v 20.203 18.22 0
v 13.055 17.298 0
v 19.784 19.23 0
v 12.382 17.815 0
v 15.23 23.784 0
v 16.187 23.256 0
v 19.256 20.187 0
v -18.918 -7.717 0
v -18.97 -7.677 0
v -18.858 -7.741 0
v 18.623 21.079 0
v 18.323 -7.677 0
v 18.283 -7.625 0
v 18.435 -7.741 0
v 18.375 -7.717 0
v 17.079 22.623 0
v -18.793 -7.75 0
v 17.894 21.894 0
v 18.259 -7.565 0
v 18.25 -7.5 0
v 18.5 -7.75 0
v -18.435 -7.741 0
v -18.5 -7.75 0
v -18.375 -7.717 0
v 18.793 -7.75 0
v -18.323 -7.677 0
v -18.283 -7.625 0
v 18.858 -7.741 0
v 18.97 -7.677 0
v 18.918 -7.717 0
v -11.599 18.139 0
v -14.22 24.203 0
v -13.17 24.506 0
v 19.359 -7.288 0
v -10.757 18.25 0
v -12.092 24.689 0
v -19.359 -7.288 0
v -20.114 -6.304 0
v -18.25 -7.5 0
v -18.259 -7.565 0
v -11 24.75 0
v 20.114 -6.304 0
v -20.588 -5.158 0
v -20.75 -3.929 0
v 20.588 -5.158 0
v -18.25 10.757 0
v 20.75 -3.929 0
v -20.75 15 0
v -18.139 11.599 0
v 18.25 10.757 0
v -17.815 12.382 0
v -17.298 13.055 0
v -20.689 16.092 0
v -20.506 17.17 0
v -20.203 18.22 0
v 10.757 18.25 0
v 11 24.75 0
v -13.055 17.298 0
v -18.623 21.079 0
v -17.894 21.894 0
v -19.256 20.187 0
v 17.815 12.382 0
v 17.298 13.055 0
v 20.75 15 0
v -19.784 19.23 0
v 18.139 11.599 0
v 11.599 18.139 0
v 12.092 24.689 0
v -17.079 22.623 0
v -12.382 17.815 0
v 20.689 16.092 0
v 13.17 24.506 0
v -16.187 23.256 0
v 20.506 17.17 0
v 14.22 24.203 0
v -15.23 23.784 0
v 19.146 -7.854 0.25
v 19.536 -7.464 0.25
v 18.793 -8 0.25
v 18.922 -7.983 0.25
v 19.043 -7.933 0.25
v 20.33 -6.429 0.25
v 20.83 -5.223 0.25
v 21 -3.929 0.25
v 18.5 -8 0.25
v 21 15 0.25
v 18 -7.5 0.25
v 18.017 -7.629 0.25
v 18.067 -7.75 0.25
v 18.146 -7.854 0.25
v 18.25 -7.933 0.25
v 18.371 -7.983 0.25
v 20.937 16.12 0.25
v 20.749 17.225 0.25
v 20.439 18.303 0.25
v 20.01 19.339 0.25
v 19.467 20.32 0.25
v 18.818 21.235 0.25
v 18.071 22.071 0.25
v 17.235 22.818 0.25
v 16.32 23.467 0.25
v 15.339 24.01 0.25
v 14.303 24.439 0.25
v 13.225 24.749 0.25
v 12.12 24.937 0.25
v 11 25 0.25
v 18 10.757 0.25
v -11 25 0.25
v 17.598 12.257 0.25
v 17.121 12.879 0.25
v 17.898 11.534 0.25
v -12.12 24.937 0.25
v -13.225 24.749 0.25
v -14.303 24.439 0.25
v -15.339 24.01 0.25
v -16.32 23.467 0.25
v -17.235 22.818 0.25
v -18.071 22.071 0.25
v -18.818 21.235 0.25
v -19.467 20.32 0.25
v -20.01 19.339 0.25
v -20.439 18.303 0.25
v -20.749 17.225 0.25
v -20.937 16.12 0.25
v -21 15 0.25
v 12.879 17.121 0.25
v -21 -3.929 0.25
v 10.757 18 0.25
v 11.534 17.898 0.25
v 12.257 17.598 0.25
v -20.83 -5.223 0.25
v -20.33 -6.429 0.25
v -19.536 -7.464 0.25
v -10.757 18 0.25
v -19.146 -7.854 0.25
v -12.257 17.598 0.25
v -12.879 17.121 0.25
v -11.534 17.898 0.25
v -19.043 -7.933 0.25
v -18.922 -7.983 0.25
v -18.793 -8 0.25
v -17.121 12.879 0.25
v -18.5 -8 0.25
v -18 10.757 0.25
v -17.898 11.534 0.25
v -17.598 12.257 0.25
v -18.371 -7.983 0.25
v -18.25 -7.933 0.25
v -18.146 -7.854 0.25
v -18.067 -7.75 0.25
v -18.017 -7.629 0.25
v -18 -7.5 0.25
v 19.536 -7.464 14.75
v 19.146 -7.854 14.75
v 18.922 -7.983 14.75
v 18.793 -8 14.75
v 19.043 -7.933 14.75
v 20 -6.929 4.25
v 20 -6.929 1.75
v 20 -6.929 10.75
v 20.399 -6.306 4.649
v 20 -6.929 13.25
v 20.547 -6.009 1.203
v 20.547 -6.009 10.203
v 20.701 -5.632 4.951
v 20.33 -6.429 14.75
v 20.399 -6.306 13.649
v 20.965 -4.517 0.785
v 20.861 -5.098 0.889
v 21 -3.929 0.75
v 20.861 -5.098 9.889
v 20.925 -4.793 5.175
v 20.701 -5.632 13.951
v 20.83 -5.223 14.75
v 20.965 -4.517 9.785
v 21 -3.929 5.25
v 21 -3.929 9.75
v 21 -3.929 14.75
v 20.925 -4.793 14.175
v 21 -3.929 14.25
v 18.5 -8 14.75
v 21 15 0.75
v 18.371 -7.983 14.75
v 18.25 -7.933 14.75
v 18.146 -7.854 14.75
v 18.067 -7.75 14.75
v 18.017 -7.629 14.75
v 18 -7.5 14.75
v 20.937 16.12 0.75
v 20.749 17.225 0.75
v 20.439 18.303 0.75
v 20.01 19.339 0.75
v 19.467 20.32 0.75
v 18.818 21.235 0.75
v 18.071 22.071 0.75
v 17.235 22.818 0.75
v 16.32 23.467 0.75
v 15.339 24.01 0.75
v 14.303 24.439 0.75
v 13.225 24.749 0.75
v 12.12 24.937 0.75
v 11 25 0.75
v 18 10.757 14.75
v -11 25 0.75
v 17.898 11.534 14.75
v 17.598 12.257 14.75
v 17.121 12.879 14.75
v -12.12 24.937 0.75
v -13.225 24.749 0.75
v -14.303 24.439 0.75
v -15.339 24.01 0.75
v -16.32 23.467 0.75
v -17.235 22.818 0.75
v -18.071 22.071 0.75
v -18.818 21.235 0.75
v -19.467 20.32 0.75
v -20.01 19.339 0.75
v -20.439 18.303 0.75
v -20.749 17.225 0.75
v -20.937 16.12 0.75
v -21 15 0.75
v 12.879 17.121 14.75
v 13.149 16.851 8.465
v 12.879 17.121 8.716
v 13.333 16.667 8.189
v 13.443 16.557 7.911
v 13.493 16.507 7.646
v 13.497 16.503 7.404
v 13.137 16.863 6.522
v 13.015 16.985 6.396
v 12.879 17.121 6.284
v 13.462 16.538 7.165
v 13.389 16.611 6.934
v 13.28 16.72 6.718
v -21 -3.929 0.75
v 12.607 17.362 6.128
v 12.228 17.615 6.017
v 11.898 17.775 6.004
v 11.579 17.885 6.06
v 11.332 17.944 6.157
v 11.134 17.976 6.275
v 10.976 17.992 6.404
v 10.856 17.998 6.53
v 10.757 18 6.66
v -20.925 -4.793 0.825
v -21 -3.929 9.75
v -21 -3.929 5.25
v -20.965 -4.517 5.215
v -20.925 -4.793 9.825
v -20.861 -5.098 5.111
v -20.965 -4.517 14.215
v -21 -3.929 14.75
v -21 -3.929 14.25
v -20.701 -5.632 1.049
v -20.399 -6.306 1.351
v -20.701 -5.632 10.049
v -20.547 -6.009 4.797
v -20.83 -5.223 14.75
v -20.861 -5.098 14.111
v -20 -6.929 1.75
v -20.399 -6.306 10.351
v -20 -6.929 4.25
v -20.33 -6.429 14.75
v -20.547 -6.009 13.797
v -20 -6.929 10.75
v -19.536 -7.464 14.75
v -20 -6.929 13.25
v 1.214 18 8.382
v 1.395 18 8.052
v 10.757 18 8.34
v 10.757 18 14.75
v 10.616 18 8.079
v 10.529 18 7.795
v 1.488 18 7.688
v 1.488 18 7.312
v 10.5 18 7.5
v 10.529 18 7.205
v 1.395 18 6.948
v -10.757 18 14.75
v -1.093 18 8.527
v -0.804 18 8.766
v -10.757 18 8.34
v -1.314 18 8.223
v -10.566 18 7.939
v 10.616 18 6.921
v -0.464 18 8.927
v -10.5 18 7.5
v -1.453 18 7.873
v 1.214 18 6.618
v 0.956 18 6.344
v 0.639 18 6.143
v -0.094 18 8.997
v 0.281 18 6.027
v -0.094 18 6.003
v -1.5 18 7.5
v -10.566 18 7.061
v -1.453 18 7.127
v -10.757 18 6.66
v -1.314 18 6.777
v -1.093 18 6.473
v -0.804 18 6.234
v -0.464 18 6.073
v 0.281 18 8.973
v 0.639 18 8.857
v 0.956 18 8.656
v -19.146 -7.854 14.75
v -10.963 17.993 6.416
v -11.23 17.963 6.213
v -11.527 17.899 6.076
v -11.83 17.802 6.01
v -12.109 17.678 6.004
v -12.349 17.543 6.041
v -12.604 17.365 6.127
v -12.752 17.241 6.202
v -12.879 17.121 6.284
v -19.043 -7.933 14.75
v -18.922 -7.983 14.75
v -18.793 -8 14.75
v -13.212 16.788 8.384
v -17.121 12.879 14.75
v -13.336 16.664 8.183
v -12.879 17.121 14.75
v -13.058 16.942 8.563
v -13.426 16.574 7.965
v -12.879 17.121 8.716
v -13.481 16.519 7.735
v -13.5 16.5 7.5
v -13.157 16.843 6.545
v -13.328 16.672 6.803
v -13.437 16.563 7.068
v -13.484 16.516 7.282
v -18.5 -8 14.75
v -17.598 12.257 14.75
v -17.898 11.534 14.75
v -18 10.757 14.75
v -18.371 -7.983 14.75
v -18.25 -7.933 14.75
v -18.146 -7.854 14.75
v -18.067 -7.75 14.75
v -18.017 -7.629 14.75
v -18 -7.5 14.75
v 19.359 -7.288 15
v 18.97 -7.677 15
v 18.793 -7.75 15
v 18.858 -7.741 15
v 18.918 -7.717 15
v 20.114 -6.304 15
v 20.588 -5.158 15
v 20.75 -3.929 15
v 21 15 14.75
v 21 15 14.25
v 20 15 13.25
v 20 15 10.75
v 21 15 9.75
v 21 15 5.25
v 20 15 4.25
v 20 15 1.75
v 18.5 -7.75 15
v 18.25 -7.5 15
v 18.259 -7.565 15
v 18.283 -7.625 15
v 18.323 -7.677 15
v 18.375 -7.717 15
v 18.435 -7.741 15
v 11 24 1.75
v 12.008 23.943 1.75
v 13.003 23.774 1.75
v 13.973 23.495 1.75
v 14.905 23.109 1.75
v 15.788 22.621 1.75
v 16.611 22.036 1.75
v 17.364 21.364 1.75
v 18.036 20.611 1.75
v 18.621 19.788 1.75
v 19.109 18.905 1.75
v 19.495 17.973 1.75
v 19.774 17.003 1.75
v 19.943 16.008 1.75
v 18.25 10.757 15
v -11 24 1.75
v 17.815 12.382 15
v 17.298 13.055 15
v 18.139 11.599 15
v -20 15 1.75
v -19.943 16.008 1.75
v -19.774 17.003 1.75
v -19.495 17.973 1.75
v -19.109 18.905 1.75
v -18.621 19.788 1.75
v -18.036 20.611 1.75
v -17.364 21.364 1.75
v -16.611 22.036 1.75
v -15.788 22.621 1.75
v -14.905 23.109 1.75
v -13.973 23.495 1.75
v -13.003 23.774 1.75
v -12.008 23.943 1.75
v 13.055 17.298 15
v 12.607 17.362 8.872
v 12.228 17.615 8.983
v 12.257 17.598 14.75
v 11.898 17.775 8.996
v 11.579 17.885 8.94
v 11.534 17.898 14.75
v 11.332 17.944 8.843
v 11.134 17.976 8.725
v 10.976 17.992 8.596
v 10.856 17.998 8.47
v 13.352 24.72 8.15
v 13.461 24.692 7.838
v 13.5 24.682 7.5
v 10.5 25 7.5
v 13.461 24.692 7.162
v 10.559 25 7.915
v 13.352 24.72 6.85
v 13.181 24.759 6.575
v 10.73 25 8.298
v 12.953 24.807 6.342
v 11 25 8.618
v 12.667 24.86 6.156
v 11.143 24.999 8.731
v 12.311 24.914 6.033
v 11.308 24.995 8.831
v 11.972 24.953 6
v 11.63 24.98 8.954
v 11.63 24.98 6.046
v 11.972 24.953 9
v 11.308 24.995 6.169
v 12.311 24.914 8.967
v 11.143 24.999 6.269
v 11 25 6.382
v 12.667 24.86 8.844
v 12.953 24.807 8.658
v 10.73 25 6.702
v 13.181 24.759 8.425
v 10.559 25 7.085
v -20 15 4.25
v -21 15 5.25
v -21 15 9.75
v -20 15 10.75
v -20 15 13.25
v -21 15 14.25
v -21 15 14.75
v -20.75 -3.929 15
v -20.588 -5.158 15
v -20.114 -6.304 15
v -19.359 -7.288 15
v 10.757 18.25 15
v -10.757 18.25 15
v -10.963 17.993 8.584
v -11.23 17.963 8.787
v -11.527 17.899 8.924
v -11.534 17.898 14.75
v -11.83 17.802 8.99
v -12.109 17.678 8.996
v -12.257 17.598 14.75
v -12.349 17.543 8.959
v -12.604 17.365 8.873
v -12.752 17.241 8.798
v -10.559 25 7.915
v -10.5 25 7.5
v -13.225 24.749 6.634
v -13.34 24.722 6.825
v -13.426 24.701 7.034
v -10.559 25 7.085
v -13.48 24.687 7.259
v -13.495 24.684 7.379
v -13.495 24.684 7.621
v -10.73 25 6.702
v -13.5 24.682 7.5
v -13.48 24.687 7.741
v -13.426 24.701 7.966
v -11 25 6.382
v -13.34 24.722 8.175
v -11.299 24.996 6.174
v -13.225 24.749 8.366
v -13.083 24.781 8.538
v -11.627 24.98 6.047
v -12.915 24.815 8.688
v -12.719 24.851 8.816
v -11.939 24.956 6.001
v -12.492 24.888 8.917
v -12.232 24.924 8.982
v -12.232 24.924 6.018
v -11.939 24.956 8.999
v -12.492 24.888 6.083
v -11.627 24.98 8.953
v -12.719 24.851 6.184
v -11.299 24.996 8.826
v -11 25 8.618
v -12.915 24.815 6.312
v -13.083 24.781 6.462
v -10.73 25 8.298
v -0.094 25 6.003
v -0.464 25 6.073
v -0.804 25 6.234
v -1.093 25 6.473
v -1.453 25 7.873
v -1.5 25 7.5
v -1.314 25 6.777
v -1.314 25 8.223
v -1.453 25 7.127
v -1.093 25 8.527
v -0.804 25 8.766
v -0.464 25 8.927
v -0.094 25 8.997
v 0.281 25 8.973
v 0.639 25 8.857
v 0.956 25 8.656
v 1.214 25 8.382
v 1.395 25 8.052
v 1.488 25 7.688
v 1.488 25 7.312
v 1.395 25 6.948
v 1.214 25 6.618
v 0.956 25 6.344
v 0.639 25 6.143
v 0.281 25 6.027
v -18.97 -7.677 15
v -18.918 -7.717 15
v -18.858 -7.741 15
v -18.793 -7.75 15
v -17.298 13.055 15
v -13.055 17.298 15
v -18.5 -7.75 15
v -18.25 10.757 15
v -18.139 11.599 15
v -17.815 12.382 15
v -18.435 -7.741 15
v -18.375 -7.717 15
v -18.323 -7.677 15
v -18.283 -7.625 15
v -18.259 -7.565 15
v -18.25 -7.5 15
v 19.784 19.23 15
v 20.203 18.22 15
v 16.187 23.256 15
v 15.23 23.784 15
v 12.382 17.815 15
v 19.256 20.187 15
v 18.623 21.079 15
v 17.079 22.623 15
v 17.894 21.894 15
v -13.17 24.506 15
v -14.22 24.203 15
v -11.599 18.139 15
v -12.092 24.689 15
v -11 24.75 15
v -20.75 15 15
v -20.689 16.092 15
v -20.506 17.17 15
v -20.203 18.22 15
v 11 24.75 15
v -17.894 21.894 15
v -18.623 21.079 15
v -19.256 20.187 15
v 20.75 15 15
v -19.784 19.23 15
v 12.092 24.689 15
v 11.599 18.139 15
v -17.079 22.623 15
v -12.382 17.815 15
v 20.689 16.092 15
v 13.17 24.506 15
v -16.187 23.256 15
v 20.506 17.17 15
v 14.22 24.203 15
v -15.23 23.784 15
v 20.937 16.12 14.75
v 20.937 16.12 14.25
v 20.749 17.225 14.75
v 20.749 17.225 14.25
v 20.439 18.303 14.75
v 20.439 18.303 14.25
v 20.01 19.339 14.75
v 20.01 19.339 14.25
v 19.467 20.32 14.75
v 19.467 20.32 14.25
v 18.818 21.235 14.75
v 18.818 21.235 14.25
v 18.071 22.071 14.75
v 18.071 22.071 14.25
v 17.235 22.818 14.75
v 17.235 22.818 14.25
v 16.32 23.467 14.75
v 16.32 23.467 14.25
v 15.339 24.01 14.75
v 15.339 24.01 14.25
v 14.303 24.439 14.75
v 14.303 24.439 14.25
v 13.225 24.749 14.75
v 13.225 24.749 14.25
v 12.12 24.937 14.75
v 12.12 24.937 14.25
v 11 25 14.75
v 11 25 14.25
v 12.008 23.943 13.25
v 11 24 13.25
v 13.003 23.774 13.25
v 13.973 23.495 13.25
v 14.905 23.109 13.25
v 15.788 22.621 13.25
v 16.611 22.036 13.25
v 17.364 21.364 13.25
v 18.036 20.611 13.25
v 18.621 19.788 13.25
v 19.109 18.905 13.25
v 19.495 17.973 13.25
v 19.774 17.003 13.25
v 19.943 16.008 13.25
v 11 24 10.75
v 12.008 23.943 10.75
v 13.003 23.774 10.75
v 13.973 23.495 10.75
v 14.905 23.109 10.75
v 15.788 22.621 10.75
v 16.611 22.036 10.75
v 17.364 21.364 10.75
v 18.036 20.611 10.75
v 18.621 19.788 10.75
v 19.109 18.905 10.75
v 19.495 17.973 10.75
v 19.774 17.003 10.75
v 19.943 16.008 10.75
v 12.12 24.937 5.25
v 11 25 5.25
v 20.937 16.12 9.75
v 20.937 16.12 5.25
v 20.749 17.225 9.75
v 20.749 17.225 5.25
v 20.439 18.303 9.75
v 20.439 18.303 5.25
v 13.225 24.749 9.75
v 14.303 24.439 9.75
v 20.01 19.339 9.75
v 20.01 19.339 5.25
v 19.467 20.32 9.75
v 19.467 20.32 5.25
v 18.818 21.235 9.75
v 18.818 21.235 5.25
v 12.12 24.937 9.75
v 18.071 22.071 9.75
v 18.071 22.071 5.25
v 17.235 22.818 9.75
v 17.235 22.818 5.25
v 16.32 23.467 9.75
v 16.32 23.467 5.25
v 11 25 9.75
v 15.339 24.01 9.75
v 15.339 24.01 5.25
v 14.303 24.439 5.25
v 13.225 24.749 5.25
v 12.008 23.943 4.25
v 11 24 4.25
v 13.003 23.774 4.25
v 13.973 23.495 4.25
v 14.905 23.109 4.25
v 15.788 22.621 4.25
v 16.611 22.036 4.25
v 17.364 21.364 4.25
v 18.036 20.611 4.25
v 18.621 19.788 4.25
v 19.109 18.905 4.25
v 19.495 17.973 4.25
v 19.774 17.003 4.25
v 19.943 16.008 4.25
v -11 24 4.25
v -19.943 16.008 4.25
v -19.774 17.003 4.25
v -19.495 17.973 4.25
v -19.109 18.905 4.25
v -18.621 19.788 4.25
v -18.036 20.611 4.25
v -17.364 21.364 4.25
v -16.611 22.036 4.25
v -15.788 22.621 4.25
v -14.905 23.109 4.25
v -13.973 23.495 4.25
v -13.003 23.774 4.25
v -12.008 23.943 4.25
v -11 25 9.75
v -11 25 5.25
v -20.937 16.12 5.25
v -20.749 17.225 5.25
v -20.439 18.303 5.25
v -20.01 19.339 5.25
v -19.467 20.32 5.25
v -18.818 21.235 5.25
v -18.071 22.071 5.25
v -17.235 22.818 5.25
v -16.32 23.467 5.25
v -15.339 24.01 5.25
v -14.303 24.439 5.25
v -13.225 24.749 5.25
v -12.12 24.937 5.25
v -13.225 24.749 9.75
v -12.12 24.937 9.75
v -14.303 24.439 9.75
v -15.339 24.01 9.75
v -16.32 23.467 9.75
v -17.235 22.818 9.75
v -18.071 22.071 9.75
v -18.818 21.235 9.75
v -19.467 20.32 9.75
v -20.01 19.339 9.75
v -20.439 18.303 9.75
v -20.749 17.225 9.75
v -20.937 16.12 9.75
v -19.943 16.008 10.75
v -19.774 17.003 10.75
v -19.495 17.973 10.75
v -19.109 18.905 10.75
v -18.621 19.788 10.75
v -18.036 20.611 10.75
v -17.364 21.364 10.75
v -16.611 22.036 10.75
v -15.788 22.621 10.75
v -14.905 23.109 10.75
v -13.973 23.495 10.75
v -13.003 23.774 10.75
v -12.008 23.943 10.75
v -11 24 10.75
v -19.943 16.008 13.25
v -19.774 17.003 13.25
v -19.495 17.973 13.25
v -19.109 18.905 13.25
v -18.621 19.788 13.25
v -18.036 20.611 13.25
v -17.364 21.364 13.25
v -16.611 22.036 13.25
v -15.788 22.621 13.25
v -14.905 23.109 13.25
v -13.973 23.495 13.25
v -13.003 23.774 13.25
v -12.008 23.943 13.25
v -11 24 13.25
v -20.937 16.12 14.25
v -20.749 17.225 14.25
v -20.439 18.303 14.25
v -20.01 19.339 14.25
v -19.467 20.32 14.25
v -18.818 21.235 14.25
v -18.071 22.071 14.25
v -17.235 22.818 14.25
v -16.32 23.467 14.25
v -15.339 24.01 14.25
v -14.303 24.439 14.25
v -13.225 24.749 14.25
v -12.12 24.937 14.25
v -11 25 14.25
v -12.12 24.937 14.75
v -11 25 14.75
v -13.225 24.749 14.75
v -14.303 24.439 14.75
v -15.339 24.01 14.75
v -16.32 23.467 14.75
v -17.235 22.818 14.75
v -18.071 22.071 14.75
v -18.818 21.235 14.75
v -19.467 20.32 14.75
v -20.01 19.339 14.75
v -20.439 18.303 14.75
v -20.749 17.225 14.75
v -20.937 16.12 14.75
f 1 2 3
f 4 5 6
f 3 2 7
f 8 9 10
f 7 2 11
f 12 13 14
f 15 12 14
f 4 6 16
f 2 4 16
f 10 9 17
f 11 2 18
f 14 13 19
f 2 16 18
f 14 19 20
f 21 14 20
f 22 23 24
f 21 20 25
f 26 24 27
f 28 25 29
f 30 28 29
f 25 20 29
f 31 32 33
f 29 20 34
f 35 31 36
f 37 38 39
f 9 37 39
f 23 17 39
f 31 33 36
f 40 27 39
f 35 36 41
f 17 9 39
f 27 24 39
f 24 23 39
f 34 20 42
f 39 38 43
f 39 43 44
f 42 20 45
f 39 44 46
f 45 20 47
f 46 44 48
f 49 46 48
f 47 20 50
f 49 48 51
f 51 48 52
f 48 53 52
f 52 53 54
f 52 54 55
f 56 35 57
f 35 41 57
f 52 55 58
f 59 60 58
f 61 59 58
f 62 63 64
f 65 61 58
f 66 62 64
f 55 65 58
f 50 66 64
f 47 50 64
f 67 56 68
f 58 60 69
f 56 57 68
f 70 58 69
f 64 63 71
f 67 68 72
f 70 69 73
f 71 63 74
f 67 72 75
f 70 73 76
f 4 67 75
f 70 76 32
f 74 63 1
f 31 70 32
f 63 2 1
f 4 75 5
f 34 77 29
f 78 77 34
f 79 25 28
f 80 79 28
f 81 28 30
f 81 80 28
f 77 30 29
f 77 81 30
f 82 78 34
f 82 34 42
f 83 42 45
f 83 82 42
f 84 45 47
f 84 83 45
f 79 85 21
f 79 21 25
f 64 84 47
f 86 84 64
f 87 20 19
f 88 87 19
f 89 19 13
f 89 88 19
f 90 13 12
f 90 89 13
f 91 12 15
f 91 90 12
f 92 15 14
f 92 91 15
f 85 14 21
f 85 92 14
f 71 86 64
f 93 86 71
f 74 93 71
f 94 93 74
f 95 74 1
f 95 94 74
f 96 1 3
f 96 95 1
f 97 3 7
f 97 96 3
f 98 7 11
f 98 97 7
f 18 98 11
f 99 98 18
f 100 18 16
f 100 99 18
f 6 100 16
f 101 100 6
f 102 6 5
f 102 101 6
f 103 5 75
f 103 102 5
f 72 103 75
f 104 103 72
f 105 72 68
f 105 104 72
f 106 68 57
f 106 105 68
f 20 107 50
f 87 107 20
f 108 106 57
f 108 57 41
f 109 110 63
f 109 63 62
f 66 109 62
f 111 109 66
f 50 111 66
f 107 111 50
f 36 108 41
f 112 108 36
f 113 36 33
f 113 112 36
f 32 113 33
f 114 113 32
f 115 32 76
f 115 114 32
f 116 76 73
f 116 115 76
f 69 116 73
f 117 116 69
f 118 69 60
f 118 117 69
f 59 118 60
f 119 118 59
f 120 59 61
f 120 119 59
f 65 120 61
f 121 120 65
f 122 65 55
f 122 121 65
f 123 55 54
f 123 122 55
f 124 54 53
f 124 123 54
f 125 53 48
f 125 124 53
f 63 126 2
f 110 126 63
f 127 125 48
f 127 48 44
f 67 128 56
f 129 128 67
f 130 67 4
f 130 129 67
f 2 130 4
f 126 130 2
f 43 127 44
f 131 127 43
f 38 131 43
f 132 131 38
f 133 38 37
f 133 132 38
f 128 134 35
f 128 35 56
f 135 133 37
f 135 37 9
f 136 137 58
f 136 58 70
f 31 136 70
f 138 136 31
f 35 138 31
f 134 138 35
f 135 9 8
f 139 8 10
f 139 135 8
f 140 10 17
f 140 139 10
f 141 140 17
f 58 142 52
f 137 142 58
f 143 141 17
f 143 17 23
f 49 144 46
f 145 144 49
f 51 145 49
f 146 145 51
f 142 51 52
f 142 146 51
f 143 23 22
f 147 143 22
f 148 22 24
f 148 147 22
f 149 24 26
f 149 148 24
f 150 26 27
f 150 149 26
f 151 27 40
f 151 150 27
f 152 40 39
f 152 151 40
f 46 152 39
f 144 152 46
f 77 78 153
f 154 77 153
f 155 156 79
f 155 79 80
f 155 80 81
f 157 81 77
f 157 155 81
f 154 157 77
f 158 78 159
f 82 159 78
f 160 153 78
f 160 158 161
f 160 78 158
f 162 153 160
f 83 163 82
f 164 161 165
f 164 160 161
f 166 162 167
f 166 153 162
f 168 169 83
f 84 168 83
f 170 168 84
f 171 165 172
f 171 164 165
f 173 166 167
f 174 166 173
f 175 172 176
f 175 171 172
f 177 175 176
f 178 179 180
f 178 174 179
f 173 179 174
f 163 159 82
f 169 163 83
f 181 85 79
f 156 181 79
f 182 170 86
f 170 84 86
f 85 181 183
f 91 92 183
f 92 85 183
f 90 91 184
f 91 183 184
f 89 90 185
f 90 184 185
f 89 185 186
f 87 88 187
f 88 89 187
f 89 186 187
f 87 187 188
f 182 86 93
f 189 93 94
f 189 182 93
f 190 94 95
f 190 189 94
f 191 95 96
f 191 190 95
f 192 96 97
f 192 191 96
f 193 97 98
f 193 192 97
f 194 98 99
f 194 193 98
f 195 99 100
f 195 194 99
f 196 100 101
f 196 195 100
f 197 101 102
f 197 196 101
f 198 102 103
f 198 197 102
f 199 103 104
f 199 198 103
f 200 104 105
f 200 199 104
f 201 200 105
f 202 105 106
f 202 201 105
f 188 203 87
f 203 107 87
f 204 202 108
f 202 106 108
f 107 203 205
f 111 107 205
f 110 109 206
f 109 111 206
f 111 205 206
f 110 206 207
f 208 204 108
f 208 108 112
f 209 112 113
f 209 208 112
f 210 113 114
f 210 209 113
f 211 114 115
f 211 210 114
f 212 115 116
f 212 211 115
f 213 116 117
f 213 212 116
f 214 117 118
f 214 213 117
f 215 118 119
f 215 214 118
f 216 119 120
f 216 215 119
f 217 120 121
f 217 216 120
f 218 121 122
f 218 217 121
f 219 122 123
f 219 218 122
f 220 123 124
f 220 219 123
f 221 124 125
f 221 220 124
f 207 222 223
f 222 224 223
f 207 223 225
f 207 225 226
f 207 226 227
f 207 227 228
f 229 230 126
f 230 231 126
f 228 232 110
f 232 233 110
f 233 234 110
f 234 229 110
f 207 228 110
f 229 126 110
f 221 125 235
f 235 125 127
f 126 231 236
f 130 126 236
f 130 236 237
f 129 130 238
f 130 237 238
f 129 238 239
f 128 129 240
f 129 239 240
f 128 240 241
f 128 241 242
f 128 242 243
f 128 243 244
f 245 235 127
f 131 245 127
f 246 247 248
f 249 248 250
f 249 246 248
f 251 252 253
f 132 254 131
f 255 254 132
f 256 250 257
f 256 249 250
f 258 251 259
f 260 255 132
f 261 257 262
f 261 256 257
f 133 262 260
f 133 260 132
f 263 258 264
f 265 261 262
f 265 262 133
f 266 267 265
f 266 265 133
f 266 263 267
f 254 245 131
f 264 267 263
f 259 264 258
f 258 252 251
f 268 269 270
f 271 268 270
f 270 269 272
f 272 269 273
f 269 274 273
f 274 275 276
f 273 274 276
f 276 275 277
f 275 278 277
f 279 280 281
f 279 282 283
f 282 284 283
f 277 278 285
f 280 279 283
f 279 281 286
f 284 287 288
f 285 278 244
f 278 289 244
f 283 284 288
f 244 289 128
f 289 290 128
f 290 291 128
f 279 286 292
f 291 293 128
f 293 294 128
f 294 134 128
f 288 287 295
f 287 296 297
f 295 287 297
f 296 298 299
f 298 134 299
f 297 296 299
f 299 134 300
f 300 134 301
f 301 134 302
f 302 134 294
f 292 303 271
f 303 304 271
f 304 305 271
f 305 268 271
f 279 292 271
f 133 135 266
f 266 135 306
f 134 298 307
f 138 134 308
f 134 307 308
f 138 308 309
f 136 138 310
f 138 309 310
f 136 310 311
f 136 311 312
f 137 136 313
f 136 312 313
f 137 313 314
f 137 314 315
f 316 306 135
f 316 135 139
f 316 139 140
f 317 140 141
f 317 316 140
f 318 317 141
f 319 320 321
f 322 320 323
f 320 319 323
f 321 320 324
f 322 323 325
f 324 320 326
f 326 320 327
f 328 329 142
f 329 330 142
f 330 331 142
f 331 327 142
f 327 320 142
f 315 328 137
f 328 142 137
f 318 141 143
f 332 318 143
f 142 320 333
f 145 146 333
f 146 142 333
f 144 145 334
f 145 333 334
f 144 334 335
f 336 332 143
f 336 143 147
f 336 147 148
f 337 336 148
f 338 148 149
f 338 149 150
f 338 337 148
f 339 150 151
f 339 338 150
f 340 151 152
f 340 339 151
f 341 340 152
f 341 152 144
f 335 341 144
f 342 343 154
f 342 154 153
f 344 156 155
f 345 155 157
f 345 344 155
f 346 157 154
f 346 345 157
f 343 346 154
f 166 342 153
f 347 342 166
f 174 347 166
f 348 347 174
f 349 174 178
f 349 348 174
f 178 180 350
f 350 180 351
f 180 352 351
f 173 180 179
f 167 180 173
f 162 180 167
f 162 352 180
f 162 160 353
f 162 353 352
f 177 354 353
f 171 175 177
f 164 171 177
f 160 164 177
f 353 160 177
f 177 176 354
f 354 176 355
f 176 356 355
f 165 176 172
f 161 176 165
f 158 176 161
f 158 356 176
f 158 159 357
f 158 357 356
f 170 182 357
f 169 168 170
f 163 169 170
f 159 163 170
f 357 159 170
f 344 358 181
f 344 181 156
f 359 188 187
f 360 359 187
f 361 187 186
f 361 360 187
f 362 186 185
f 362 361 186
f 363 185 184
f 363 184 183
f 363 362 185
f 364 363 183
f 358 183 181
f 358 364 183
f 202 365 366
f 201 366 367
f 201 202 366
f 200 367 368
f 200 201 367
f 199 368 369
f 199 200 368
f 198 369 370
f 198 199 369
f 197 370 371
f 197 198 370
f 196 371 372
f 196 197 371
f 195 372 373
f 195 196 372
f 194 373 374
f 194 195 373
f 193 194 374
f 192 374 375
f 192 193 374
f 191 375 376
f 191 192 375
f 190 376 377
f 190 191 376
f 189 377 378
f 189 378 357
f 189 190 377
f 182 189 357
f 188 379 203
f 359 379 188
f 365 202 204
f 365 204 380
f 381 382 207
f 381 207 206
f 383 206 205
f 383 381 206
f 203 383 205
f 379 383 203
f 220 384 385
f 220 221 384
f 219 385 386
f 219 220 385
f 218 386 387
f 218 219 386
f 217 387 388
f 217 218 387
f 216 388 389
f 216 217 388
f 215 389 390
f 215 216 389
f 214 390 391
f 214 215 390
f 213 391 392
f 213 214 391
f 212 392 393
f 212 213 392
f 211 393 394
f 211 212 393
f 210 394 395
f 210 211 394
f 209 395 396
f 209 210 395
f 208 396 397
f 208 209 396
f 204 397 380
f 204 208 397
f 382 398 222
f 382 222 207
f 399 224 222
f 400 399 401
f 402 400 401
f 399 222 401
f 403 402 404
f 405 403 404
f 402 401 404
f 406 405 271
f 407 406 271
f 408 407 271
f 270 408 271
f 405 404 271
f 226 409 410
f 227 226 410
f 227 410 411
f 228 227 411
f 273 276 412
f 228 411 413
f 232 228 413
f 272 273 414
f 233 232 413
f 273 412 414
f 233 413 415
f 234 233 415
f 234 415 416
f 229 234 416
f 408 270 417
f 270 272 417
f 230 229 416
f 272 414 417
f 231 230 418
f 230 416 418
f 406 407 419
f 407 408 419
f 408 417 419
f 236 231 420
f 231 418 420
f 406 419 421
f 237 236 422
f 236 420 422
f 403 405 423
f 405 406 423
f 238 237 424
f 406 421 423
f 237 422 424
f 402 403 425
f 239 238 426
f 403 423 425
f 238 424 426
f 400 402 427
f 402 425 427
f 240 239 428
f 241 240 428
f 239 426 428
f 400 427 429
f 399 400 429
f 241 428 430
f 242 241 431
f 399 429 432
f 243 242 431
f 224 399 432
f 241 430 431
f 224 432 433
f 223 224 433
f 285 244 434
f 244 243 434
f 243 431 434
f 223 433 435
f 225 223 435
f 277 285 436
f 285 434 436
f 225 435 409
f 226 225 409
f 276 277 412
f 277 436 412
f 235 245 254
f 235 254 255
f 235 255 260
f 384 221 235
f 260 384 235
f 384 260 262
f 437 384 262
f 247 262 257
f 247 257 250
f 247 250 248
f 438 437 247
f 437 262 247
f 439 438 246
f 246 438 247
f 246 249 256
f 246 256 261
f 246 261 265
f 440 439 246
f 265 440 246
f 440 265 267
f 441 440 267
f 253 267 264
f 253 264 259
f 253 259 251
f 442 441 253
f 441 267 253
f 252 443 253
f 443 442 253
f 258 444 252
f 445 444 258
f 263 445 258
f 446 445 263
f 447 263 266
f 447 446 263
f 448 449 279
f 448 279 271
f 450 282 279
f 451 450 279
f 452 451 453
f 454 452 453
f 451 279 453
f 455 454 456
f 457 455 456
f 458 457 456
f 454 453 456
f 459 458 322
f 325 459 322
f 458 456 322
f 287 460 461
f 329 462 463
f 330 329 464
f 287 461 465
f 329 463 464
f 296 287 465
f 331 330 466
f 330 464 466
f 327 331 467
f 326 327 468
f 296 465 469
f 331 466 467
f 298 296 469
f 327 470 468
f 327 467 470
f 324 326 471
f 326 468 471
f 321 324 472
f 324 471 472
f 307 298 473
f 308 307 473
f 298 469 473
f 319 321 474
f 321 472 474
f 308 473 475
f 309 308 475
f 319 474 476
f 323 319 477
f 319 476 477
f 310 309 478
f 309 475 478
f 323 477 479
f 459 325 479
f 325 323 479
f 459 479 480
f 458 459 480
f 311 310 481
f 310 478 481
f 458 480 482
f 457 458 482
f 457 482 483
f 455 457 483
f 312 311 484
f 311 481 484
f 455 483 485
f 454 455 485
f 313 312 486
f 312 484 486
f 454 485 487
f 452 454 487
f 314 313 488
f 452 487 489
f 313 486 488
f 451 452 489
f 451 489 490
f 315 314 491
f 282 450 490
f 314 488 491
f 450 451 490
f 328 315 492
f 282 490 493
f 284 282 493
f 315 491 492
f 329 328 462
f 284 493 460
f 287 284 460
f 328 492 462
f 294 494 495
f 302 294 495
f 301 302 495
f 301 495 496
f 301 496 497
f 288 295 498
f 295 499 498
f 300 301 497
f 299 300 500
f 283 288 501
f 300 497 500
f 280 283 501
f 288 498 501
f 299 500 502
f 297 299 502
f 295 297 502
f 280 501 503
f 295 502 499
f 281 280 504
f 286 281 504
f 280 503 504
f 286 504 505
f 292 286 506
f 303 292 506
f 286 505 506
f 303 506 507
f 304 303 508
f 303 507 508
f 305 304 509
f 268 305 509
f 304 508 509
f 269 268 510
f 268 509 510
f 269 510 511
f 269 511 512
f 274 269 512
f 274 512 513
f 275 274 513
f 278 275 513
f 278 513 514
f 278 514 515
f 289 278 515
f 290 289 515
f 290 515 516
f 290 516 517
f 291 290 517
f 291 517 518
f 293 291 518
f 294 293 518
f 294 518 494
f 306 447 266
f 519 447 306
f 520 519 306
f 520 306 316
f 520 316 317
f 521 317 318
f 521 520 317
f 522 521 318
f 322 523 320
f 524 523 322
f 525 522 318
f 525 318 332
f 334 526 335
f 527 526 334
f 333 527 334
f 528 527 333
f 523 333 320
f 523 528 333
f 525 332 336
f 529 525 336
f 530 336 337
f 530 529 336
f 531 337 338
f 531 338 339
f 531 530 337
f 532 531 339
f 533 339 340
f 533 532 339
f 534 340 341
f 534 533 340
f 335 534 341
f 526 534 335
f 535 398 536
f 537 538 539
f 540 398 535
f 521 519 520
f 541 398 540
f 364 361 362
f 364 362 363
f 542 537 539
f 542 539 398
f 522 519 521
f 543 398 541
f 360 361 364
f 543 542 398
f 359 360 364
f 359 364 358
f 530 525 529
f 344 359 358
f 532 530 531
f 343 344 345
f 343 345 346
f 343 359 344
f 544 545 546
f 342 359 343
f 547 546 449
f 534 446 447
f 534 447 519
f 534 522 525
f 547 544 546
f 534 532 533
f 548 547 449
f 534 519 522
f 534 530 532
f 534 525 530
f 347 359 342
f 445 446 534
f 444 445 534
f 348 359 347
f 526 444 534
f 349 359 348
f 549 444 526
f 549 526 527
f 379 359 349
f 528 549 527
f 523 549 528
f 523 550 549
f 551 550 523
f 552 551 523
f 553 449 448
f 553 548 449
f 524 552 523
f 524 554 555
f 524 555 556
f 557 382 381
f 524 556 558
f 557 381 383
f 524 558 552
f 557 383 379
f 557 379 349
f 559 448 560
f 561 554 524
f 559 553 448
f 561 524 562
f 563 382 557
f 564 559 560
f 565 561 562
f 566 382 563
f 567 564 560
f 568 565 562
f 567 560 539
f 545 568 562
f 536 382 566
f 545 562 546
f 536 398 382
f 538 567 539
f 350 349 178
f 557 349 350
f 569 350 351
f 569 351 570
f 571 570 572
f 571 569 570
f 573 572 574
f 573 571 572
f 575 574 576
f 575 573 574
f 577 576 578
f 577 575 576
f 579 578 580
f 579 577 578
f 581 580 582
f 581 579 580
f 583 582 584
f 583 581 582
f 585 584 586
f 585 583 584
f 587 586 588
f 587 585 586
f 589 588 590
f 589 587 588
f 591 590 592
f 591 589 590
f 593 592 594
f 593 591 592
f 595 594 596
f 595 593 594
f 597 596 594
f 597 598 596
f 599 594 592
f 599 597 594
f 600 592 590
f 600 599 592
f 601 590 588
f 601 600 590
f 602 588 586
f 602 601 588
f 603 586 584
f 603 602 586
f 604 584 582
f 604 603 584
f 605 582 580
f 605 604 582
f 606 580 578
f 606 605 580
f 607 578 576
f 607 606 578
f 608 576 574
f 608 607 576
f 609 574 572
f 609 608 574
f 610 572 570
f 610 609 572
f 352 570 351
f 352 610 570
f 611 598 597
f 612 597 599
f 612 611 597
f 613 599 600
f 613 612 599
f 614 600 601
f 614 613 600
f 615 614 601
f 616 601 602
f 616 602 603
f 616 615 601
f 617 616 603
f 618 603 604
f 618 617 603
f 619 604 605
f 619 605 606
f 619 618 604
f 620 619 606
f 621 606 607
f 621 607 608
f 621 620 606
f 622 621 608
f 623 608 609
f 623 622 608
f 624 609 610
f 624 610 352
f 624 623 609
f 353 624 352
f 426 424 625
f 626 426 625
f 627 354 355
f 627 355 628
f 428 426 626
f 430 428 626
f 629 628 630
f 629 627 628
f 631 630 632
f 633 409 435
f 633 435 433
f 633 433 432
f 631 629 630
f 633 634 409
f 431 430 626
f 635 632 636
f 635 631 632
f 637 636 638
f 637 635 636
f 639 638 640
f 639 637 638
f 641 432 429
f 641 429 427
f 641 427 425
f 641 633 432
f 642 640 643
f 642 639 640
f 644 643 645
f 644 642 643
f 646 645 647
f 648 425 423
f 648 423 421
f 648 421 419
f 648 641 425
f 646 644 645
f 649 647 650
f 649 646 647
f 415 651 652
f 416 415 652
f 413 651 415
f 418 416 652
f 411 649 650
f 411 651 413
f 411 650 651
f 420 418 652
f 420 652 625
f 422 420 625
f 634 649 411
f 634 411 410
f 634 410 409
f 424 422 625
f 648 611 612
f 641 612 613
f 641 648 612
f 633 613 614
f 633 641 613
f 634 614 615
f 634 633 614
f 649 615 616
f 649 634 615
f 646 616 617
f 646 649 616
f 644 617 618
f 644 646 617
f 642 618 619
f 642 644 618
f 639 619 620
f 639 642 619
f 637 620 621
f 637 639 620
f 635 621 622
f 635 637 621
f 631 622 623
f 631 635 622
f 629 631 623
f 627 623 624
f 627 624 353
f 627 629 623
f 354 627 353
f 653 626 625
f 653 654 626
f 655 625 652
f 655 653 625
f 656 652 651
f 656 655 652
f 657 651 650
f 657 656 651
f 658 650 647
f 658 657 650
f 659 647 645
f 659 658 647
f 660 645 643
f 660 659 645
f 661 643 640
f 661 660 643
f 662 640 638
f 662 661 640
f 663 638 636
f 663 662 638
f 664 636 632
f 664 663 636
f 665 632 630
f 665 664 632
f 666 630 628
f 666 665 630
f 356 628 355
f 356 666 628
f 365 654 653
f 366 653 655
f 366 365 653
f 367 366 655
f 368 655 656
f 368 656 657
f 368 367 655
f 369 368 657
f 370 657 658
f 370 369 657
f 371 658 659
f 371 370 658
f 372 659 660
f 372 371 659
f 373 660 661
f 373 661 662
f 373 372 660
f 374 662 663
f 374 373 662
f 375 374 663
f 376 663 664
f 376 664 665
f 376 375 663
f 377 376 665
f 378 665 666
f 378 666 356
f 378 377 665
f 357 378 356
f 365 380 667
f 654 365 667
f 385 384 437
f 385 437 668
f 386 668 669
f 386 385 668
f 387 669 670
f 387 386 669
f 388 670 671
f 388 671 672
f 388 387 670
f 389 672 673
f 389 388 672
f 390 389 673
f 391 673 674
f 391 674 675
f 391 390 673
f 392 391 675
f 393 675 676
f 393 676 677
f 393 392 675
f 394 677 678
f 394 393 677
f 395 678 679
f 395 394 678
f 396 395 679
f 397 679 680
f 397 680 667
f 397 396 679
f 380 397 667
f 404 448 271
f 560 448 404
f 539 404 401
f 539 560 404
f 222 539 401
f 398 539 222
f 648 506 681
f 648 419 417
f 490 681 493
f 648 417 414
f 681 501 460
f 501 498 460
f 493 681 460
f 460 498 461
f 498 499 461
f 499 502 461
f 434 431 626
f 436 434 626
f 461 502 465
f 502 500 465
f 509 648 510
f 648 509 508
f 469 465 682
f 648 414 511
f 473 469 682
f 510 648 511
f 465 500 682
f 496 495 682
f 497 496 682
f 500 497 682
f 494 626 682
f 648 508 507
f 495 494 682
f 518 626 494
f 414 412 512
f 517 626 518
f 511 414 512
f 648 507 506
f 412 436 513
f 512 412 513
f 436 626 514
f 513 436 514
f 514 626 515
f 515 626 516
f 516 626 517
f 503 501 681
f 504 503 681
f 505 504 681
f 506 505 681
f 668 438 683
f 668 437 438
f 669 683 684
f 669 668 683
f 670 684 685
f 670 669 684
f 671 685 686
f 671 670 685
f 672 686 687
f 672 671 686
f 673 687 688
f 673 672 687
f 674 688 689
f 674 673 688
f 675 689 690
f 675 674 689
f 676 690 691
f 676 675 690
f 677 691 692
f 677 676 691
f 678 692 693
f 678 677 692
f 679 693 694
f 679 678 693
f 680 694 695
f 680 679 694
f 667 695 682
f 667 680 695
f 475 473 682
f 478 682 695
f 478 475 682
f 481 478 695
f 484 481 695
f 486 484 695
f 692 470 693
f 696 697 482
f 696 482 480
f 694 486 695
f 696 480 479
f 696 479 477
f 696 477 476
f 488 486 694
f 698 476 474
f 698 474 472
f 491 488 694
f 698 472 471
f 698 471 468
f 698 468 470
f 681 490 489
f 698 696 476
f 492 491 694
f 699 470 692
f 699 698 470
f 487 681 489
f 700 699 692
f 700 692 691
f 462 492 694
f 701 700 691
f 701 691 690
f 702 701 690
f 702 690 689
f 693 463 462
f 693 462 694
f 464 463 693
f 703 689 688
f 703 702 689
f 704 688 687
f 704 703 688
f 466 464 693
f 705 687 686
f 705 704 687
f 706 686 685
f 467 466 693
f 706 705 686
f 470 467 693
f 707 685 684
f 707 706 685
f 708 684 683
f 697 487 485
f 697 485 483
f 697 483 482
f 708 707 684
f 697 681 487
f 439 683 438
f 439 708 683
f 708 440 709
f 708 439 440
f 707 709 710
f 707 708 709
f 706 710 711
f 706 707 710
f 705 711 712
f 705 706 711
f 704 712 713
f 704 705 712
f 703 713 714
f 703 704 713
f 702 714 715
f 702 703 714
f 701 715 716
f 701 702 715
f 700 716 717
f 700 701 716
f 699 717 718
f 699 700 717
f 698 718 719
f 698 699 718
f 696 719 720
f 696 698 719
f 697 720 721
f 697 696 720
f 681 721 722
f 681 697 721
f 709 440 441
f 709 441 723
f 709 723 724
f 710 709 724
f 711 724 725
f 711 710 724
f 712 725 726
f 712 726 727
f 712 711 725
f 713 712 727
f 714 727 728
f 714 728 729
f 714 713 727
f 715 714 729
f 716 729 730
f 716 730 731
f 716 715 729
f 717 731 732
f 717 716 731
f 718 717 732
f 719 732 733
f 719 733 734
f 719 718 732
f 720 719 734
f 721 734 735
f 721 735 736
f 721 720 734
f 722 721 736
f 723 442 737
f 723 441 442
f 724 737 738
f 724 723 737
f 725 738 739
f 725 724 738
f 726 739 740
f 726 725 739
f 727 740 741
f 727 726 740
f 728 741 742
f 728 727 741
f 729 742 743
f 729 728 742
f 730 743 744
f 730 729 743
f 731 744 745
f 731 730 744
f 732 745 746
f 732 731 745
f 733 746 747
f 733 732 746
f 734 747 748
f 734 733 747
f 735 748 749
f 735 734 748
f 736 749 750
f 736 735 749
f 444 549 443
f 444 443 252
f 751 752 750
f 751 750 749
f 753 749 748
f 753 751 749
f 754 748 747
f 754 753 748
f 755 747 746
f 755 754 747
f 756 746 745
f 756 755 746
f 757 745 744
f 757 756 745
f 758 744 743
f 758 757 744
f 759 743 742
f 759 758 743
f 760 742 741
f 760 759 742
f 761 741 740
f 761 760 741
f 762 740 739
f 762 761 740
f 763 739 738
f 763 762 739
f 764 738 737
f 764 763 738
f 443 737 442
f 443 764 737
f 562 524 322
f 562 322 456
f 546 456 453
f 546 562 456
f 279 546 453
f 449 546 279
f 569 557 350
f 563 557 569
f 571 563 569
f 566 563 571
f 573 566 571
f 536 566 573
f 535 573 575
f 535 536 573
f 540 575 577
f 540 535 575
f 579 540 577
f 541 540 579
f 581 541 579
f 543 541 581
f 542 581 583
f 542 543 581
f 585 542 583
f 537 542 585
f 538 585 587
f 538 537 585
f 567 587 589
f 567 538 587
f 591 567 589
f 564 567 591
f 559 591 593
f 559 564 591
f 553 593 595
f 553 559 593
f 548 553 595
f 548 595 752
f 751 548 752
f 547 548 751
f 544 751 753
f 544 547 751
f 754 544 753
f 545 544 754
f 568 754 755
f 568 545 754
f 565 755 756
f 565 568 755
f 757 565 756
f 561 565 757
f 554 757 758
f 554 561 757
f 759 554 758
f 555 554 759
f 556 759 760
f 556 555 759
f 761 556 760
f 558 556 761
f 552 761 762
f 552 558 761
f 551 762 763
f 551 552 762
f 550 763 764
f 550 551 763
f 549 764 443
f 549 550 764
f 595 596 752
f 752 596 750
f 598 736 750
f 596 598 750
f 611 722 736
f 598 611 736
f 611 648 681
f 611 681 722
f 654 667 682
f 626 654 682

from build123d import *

# Parameters (mm, degrees)
PAD_DEPTH       = 15
FILLET_R        = 10
FILLET001_R     = 3
CHAMFER_SIZE    = 2
FILLET002_R     = 0.5
FILLET003_R     = 5
CHAMFER001_SIZE = 0.25
SKETCH003_R     = 1.5
POCKET_DEPTH    = 33.001


with BuildPart() as sweep_body:
    # Sweep: sweep along a path in Sketch001
    with BuildLine(Plane.XY) as sweep_path:
        Line((21, -10), (21, 15.000008))
        ThreePointArc((21, 15.000008), (18.071065, 22.071071), (11, 25))
        Line((11, 25), (-11, 25))
        ThreePointArc((-11, 25), (-18.071068, 22.071068), (-21, 15))
        Line((-21, 15), (-21, -10))
    # Sketch002 → Sweep (sweep)
    with BuildSketch(Plane.XZ.offset(10)):
        Polygon((22, 3.25), (22, -3.25), (20, -1.25), (20, 1.25), align=None)
    sweep(path=sweep_path.line)


with BuildPart() as sweep_body_1:
    # Sweep placement: moved
    add(sweep_body.part.moved(Location((0, 0, 3))))


with BuildPart() as fusion:
    # Clone base: copy of Sweep body
    add(sweep_body_1.part)


with BuildPart() as fusion_1:
    # Clone placement: moved
    add(fusion.part.moved(Location((0, 0, 9))))

    # Fusion: union Sweep body
    add(sweep_body_1.part)


with BuildPart() as pocket:
    # Sketch → Pad (new body)
    with BuildSketch(Plane.XY):
        Polygon((-18, -8), (-18, 12), (-12, 18), (12, 18), (18, 12), (18, -8), (21, -8), (21, 25), (-21, 25), (-21, -8), align=None)
    extrude(amount=PAD_DEPTH)

    # Fillet
    fillet_edges = [pocket.edges().sort_by_distance(p)[0] for p in [
        (-21, 25, 7.5),
        (21, 25, 7.5),
    ]]
    fillet(fillet_edges, radius=FILLET_R)

    # Fillet001
    fillet001_edges = [pocket.edges().sort_by_distance(p)[0] for p in [
        (-12, 18, 7.5),
        (-18, 12, 7.5),
        (12, 18, 7.5),
        (18, 12, 7.5),
    ]]
    fillet(fillet001_edges, radius=FILLET001_R)

    # Chamfer
    chamfer_edges = [pocket.edges().sort_by_distance(p)[0] for p in [
        (-21, -8, 7.5),
        (21, -8, 7.5),
    ]]
    chamfer(chamfer_edges, length=CHAMFER_SIZE)

    # Fillet002
    fillet002_edges = [pocket.edges().sort_by_distance(p)[0] for p in [
        (-19, -8, 7.5),
        (-18, -8, 7.5),
        (19, -8, 7.5),
        (18, -8, 7.5),
    ]]
    fillet(fillet002_edges, radius=FILLET002_R)

    # Fillet003
    fillet003_edges = [pocket.edges().sort_by_distance(p)[0] for p in [
        (-21, -6, 7.5),
        (21, -6, 7.5),
    ]]
    fillet(fillet003_edges, radius=FILLET003_R)

    # Chamfer001
    chamfer001_edges = [pocket.edges().sort_by_distance(p)[0] for p in [
        (19.34099, -7.65901, 15),
        (20.619398, -5.842349, 15),
        (18.984235, -7.96194, 15),
        (21, 5.535534, 15),
        (18.646447, -8, 15),
        (18.071068, 22.071068, 15),
        (18.146447, -7.853553, 15),
        (0, 25, 15),
        (18, 1.62868, 15),
        (-18.071068, 22.071068, 15),
        (17.771639, 11.90541, 15),
        (-21, 5.535534, 15),
        (15, 15, 15),
        (-20.619398, -5.842349, 15),
        (11.90541, 17.771639, 15),
        (-19.34099, -7.65901, 15),
        (0, 18, 15),
        (-18.984235, -7.96194, 15),
        (-11.90541, 17.771639, 15),
        (-18.646447, -8, 15),
        (-15, 15, 15),
        (-18.146447, -7.853553, 15),
        (-17.771639, 11.90541, 15),
        (-18, 1.62868, 15),
        (19.34099, -7.65901, 0),
        (20.619398, -5.842349, 0),
        (18.984235, -7.96194, 0),
        (21, 5.535534, 0),
        (18.646447, -8, 0),
        (18.071068, 22.071068, 0),
        (18.146447, -7.853553, 0),
        (0, 25, 0),
        (18, 1.62868, 0),
        (-18.071068, 22.071068, 0),
        (17.771639, 11.90541, 0),
        (-21, 5.535534, 0),
        (15, 15, 0),
        (-20.619398, -5.842349, 0),
        (11.90541, 17.771639, 0),
        (-19.34099, -7.65901, 0),
        (0, 18, 0),
        (-18.984235, -7.96194, 0),
        (-11.90541, 17.771639, 0),
        (-18.646447, -8, 0),
        (-15, 15, 0),
        (-18.146447, -7.853553, 0),
        (-17.771639, 11.90541, 0),
        (-18, 1.62868, 0),
    ]]
    chamfer(chamfer001_edges, length=CHAMFER001_SIZE)

    # Cut: cut Fusion
    add(fusion_1.part, mode=Mode.SUBTRACT)

    # Sketch003 → Pocket (cut, through all)
    with BuildSketch(Plane(origin=(0, 25, 0), x_dir=(-1, 0, 0), z_dir=(0, 1, 0))):
        with Locations((-12, 7.5)):
            Circle(SKETCH003_R)
        with Locations((0, 7.5)):
            Circle(SKETCH003_R)
        with Locations((12, 7.5)):
            Circle(SKETCH003_R)
    extrude(amount=-POCKET_DEPTH, mode=Mode.SUBTRACT)


solid = pocket.part
